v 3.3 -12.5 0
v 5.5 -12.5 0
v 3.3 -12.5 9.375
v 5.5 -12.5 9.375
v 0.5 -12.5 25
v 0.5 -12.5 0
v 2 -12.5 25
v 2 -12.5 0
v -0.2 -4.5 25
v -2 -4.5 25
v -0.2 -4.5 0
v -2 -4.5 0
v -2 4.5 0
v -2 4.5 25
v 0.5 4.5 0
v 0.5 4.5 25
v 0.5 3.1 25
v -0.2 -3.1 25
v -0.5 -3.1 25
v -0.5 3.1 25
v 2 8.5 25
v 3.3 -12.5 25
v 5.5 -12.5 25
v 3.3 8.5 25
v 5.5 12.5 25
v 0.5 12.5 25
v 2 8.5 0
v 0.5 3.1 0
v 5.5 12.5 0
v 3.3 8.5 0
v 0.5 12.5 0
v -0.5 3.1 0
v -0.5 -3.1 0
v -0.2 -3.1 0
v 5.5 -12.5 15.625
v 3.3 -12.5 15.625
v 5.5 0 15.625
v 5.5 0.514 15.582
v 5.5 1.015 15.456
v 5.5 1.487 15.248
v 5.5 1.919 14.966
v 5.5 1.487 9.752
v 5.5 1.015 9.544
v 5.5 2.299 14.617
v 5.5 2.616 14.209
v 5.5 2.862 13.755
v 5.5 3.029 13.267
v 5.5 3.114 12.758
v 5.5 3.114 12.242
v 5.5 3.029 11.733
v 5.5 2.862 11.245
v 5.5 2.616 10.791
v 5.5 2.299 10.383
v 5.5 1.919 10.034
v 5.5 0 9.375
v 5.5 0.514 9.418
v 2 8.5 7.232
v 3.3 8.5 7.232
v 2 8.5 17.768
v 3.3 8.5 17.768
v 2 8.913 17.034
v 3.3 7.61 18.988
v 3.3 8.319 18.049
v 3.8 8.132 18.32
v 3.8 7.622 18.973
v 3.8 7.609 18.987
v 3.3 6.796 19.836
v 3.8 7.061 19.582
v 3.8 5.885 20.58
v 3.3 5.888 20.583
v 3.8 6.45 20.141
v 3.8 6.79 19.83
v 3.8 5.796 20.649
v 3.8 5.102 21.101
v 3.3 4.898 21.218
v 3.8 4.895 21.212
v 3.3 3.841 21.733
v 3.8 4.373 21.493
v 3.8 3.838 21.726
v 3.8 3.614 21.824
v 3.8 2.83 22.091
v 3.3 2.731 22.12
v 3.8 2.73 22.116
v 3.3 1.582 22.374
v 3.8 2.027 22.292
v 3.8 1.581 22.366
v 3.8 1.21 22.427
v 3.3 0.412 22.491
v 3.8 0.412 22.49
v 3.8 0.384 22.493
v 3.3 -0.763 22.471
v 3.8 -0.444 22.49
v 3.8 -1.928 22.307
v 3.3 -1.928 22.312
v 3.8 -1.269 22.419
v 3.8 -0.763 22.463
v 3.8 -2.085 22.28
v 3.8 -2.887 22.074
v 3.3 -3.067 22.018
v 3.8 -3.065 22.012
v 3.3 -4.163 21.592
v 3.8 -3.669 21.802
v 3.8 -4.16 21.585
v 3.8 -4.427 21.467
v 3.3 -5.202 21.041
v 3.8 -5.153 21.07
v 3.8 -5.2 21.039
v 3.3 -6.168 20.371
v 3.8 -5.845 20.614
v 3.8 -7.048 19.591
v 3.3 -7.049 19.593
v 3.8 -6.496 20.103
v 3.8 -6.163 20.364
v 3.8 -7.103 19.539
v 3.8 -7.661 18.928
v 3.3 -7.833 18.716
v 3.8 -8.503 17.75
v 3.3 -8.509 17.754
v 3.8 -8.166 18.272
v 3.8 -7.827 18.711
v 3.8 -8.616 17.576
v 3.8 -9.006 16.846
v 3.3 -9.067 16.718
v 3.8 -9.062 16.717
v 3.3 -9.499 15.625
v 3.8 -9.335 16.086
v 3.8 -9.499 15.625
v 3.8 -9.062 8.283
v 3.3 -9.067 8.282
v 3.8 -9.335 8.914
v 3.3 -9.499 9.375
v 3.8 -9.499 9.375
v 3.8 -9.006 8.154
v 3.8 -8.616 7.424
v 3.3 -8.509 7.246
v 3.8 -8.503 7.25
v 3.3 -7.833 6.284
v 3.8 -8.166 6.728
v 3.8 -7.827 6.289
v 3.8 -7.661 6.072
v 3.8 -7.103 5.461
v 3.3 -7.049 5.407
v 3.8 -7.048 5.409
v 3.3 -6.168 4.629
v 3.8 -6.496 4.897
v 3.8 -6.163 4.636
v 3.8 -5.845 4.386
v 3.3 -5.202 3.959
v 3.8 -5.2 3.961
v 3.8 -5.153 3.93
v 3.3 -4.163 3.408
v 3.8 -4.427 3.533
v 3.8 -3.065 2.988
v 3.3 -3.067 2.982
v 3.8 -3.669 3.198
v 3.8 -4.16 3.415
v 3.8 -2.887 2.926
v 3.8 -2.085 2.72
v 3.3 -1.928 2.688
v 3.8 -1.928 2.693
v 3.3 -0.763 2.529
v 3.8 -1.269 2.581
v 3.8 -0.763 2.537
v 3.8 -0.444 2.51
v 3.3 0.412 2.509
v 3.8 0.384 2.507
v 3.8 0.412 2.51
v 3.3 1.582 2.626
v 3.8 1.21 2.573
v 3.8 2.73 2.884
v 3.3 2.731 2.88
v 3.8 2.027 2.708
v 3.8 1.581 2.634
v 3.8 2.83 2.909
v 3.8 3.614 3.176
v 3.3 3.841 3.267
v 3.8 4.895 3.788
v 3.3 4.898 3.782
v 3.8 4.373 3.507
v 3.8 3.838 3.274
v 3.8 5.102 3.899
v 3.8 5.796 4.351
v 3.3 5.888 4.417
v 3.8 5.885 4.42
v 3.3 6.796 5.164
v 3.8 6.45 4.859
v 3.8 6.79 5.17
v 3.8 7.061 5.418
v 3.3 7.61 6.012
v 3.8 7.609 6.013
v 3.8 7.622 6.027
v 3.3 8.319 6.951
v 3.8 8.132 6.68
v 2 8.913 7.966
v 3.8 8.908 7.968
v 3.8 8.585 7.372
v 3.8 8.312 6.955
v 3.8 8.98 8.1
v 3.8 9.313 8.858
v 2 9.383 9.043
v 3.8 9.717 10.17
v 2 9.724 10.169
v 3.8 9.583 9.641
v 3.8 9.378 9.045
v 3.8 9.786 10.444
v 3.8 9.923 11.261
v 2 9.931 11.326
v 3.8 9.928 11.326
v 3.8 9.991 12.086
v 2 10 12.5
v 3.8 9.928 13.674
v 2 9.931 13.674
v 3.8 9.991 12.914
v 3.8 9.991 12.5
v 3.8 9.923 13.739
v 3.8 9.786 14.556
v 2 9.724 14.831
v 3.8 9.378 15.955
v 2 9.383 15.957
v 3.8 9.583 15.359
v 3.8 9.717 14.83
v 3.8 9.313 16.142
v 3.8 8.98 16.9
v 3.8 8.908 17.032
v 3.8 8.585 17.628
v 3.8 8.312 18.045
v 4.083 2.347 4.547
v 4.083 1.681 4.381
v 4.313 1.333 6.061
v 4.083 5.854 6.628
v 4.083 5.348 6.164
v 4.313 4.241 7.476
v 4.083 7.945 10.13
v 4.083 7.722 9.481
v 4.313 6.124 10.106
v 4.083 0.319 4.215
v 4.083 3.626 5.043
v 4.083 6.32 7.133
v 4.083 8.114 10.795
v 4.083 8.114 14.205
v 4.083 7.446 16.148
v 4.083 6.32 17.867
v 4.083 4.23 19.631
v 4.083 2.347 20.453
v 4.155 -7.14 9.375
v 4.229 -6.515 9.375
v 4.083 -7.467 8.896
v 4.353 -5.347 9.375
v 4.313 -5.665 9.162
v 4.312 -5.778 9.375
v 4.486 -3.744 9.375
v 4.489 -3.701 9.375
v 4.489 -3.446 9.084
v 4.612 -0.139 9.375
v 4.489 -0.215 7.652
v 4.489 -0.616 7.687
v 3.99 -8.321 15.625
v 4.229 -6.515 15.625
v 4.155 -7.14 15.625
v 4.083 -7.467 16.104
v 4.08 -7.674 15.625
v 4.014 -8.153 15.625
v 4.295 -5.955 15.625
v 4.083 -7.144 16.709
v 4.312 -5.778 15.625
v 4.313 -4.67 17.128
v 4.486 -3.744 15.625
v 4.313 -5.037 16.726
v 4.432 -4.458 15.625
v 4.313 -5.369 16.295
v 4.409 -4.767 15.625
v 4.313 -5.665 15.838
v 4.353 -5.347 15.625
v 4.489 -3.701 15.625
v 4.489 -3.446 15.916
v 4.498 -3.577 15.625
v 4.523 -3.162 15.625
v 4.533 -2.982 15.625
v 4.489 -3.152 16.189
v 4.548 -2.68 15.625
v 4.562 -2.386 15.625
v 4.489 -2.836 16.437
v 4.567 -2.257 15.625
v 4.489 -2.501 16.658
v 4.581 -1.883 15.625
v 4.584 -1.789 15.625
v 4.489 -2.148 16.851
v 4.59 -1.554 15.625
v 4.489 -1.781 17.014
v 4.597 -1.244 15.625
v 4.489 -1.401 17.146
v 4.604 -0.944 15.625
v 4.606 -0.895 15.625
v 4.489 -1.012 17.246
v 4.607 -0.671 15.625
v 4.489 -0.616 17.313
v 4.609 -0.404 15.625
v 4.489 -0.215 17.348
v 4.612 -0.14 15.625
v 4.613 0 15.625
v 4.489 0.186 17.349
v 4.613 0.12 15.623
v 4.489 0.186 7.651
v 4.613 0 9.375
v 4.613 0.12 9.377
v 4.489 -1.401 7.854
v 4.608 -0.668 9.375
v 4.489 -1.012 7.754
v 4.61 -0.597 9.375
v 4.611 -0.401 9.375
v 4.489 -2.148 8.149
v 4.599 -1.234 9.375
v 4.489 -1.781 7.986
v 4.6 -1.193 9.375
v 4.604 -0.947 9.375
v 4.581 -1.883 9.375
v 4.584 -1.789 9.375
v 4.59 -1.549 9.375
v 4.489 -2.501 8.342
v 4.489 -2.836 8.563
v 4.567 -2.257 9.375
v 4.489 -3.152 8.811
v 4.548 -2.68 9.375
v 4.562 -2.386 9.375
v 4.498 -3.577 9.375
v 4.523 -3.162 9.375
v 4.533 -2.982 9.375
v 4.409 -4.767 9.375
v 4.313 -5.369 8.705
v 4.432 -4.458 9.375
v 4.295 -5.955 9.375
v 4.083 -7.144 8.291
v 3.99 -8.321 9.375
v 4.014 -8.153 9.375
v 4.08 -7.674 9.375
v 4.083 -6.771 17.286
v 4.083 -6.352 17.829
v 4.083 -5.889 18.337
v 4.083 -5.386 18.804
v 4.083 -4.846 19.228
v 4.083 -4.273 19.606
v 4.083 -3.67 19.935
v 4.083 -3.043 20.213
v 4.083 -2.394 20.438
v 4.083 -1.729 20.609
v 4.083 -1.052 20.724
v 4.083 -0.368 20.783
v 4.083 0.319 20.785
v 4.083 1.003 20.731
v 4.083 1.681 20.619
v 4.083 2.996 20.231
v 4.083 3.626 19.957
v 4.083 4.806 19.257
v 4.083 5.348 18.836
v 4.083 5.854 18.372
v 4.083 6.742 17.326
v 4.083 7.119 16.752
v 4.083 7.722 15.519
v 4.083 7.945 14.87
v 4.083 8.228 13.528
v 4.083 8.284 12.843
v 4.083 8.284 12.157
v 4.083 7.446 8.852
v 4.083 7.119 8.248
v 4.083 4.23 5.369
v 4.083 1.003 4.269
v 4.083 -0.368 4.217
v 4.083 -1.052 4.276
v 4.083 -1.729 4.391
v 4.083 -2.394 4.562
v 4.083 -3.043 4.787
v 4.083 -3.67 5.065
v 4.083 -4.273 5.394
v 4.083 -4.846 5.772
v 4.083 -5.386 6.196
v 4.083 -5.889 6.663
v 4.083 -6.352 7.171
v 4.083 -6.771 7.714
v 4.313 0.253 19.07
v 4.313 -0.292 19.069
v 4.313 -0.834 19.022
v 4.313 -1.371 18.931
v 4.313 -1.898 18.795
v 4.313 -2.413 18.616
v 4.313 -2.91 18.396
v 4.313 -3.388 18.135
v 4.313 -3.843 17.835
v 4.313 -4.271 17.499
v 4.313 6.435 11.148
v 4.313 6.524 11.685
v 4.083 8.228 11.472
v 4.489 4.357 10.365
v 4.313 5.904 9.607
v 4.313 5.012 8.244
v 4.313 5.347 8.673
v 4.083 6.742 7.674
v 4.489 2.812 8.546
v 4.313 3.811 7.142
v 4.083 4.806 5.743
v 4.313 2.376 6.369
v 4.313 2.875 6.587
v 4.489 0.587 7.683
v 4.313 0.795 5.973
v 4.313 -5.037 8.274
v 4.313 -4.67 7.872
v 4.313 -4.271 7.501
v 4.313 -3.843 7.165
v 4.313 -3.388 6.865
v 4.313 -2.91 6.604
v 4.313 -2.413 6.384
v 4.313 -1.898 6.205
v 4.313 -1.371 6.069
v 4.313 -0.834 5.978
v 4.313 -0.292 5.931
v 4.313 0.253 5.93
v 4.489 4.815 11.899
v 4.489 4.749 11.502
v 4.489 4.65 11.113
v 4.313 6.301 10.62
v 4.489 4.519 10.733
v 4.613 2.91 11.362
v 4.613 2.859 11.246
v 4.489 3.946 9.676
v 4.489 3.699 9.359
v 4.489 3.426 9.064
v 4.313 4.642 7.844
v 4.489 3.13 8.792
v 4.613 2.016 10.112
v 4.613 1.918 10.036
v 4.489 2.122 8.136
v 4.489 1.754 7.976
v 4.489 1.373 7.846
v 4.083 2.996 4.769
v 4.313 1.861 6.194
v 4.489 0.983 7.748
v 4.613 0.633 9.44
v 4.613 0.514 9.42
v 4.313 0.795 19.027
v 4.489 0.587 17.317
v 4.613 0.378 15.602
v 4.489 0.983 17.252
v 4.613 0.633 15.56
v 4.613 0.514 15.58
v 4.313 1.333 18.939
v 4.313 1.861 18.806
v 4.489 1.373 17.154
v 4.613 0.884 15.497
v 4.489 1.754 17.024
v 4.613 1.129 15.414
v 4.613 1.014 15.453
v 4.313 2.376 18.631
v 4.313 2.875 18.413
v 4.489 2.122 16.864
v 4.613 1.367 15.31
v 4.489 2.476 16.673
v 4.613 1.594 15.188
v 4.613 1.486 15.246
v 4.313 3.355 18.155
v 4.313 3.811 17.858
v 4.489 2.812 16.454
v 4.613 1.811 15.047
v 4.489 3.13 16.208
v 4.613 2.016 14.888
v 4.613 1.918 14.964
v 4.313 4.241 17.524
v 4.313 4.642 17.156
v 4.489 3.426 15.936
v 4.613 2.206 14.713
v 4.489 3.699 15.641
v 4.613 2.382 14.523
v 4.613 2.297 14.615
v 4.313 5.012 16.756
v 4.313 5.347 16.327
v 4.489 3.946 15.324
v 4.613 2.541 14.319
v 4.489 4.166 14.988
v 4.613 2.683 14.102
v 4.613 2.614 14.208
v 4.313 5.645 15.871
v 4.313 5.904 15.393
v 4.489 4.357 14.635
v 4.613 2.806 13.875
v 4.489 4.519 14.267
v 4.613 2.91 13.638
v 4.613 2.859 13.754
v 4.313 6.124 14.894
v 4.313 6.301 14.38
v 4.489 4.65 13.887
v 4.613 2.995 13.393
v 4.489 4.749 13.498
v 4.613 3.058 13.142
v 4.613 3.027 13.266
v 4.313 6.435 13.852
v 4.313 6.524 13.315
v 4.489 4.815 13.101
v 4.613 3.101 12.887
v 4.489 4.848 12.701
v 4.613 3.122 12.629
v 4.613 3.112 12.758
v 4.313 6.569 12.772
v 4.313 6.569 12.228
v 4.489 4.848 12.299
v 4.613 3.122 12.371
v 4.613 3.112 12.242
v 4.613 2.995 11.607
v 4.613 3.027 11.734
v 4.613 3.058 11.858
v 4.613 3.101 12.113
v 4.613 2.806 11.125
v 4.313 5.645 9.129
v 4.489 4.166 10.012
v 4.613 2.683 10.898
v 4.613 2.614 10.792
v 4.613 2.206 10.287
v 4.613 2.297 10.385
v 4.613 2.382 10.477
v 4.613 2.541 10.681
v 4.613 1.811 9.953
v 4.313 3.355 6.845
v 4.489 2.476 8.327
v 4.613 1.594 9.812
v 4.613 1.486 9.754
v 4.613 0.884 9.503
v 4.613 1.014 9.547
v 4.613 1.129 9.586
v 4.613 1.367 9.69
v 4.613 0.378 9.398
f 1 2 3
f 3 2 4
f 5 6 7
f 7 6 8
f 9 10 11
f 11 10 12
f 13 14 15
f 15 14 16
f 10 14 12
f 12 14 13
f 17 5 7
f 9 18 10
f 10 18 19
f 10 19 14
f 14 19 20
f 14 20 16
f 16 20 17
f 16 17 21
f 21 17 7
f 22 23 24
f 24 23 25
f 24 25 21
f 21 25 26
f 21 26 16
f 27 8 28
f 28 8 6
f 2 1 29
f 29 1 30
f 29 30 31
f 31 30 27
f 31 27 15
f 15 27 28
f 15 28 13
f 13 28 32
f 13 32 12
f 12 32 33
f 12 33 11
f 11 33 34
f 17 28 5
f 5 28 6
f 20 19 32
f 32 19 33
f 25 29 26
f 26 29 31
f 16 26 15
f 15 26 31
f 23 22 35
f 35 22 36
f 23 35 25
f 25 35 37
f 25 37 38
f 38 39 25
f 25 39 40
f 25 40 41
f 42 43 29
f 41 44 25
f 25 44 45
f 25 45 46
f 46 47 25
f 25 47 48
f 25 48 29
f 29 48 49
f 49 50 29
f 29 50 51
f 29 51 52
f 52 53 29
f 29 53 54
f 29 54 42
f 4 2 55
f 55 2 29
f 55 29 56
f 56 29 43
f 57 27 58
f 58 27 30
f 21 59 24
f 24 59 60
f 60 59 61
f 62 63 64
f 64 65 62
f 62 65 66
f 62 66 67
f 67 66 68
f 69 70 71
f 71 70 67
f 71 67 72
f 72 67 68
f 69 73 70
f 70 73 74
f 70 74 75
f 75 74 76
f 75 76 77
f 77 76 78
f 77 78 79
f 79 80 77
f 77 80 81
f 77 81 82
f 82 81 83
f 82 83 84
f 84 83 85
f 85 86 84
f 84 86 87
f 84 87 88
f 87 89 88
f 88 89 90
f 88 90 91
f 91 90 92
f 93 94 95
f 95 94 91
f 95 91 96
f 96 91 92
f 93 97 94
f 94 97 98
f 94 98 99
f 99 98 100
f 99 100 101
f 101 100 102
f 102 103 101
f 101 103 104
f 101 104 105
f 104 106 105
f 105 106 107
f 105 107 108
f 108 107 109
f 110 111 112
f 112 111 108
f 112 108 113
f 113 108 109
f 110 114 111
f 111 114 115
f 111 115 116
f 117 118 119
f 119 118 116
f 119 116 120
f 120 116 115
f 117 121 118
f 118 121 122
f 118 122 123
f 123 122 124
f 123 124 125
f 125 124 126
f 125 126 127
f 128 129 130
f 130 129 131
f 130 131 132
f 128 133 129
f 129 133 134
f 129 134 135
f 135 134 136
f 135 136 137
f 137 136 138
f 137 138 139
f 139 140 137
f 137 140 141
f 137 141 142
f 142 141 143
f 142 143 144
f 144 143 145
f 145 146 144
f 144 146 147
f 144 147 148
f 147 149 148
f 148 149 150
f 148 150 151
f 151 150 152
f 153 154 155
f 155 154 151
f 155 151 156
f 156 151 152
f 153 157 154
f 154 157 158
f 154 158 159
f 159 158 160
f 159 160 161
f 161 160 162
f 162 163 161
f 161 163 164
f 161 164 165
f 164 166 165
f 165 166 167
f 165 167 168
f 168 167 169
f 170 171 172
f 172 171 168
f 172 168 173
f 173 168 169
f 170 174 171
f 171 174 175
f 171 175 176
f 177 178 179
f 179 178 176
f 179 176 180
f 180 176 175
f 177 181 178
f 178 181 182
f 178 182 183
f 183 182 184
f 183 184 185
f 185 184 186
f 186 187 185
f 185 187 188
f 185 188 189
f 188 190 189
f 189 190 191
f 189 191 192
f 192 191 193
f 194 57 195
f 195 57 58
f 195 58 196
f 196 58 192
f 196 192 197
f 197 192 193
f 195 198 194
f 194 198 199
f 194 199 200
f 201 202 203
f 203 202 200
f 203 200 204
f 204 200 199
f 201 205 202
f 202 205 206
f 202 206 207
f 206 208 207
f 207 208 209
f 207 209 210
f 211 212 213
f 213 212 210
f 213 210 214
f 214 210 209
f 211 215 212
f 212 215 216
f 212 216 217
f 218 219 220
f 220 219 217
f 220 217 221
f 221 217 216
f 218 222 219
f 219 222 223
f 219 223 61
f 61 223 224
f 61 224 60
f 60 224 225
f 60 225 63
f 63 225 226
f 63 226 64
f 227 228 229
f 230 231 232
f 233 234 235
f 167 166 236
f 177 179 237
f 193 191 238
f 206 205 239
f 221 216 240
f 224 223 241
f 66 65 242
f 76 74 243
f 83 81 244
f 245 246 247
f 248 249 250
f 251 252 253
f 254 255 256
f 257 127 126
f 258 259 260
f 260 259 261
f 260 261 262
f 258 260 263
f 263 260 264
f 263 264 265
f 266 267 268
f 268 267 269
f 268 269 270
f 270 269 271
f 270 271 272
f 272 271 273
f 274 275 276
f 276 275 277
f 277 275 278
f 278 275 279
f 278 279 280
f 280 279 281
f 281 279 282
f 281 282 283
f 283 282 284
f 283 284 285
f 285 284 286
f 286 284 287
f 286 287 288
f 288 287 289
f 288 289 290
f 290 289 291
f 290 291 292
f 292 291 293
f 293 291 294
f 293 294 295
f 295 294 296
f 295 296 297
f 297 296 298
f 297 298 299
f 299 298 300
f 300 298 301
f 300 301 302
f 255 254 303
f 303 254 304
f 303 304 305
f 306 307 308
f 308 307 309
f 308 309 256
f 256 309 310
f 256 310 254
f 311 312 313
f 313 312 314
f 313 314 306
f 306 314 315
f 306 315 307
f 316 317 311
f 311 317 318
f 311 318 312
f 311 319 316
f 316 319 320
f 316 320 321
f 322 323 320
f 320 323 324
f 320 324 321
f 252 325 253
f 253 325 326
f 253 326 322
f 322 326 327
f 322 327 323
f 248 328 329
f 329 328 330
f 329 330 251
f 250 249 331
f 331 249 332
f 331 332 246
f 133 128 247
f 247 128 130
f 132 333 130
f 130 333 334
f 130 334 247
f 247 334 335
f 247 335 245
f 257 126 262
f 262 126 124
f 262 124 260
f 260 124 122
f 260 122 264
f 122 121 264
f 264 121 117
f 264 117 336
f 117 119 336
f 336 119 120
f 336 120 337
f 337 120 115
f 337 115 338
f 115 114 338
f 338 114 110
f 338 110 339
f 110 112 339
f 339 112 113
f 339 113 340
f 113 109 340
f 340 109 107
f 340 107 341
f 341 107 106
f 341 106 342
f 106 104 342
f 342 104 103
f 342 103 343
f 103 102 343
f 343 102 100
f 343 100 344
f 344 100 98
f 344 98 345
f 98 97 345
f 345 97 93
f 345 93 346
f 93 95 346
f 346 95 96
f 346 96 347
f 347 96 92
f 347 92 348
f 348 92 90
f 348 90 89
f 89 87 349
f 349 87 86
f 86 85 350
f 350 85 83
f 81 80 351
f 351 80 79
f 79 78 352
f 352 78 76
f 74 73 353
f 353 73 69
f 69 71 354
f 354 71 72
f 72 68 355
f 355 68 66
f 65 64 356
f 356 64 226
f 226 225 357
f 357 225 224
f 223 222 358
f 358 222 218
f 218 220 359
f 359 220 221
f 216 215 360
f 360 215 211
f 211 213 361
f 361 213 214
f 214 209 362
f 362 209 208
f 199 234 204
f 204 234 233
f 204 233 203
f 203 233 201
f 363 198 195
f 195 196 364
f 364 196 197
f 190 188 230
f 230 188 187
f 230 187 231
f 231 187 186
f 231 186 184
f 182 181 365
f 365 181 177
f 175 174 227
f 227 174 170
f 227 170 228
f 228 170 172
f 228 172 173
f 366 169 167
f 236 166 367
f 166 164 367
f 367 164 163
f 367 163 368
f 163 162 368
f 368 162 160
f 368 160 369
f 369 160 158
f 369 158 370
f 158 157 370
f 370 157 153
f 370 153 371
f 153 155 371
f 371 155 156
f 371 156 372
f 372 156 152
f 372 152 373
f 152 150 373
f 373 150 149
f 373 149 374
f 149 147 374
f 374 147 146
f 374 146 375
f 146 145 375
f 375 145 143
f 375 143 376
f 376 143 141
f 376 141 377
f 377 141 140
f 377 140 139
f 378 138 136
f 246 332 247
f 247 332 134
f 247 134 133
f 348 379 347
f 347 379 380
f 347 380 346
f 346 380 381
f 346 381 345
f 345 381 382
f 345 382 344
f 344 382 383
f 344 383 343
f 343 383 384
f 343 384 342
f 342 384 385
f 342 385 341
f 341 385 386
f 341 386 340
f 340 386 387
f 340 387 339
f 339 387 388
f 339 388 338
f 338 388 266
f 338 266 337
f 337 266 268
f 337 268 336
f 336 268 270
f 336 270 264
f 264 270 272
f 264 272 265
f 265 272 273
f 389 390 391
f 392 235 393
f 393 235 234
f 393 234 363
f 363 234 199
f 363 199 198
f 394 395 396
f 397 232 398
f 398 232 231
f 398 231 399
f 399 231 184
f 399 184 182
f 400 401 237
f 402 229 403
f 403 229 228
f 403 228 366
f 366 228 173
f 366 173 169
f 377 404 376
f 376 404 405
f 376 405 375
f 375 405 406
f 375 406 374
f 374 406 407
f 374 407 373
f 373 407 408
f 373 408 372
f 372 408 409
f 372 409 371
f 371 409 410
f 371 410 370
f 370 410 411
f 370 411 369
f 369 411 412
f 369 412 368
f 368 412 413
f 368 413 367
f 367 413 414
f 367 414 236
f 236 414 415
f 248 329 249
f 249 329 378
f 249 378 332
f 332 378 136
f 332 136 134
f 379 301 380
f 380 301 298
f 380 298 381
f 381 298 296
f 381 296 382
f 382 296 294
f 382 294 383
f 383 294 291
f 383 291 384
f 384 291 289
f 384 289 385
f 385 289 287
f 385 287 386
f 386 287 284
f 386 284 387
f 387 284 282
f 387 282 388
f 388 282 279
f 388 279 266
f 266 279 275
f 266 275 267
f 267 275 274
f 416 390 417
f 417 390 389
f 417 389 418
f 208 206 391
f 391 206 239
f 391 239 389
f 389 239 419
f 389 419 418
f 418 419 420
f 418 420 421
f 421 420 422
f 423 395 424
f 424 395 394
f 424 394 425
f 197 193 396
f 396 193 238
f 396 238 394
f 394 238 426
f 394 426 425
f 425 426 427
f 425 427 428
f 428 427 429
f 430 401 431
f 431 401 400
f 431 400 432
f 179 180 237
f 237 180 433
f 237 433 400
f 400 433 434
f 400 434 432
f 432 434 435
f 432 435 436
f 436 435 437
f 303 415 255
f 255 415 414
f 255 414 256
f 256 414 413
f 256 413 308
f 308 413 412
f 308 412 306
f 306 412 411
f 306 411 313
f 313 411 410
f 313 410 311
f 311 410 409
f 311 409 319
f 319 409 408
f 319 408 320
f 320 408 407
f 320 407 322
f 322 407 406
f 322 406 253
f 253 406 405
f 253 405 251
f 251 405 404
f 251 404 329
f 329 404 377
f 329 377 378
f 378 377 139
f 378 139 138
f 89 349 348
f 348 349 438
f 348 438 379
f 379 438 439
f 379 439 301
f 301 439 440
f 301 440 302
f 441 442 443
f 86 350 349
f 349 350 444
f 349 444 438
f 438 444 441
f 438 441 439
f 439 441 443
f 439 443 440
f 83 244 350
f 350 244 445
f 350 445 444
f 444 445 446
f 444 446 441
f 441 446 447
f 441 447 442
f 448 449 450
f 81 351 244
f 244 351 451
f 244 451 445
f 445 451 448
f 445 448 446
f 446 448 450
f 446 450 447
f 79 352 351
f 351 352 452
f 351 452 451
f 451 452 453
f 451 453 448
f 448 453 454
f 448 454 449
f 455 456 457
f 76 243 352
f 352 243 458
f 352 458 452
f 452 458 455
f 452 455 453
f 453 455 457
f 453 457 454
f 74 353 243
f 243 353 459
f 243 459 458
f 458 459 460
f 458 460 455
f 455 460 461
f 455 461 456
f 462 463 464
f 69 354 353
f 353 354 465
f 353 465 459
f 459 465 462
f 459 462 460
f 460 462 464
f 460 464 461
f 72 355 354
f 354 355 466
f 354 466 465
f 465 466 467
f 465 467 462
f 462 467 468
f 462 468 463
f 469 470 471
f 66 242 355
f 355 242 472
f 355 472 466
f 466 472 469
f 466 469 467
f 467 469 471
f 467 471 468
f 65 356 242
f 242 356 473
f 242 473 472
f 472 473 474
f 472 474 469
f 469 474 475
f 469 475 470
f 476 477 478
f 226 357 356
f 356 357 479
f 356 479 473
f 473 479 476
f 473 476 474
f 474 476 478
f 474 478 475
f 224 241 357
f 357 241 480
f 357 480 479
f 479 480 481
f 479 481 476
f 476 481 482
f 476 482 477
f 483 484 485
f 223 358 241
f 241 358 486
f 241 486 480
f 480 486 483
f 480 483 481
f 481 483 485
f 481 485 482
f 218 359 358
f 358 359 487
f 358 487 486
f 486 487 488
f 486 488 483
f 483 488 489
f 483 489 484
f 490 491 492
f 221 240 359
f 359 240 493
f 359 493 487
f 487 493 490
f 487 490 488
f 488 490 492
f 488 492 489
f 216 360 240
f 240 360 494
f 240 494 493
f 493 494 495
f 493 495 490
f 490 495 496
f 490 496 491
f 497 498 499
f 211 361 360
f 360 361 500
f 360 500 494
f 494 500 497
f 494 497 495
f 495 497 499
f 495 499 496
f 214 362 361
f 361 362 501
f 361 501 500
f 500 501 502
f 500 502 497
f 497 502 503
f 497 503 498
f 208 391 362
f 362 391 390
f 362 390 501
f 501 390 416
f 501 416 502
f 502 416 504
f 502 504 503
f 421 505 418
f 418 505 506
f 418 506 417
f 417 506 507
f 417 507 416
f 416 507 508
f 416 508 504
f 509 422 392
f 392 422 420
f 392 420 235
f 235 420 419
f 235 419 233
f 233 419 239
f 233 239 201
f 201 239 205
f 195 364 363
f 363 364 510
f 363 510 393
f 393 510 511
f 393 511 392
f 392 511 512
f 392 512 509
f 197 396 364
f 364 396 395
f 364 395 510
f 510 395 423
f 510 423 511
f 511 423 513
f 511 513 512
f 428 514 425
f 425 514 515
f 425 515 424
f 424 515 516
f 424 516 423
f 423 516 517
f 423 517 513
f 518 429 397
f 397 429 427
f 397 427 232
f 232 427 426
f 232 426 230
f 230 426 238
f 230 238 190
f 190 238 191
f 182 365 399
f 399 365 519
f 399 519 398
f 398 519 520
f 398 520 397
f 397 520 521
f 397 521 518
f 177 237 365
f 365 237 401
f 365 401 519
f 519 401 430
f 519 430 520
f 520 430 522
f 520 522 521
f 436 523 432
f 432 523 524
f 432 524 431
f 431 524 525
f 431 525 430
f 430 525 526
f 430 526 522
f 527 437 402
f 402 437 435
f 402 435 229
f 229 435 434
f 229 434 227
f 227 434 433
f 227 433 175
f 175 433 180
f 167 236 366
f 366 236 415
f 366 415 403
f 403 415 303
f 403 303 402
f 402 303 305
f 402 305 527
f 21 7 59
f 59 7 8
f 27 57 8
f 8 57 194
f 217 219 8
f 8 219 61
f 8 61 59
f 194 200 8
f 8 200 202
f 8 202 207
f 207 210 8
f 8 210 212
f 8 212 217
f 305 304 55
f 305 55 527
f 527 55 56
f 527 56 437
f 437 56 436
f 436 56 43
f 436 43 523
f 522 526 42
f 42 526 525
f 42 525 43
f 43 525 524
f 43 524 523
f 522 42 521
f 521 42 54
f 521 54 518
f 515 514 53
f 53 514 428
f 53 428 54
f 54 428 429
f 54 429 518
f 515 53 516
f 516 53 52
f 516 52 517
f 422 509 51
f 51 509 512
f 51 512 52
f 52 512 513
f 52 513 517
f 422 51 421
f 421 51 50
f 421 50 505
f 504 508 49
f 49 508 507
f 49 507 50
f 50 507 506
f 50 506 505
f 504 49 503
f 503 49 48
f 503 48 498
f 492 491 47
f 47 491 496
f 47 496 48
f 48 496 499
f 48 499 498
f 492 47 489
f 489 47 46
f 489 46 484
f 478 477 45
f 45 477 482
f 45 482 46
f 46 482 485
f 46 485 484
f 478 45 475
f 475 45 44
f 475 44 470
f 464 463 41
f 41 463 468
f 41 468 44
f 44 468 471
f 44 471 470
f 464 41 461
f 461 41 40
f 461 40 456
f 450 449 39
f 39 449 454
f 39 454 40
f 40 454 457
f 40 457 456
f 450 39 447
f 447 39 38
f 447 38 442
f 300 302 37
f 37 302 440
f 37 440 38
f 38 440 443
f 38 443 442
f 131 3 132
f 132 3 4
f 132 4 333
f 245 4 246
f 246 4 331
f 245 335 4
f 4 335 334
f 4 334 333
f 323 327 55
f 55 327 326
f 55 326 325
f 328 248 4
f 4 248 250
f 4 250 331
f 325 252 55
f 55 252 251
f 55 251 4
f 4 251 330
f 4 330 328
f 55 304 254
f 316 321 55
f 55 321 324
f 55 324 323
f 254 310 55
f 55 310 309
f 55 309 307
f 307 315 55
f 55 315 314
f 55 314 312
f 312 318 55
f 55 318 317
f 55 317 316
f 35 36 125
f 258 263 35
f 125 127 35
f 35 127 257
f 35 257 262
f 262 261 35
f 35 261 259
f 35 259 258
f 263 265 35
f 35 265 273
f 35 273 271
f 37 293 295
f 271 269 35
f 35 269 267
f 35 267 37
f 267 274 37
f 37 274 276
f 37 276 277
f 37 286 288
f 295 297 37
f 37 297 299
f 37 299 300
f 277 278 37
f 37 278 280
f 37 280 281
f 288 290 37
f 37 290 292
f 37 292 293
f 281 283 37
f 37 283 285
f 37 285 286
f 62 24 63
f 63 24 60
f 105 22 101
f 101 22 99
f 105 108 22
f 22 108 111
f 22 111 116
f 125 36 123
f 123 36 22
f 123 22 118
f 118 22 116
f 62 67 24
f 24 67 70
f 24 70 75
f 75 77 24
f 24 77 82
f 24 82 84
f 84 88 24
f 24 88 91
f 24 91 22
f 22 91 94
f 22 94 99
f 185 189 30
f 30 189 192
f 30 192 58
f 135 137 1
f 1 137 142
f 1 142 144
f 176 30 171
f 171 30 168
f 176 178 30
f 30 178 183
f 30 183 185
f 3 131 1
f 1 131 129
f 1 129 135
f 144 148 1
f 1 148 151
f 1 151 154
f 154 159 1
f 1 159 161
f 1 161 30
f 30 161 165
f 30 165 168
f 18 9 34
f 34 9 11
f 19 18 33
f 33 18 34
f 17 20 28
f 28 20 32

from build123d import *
from build123d.topology import SkipClean

# Parameters (mm, degrees)
SKETCH1_W           = 4
SKETCH1_H           = 9
BOSS_EXTRUDE1_DEPTH = 25
SKETCH2_W           = 1
SKETCH2_H           = 6
CUT_EXTRUDE1_DEPTH  = 26.480384612
SKETCH4_W           = 25
SKETCH4_H           = 25
BOSS_EXTRUDE2_DEPTH = 1.5
SKETCH5_W           = 25
SKETCH5_H           = 25
BOSS_EXTRUDE3_DEPTH = 3.5
SKETCH7_W           = 1.8
SKETCH7_H           = 25
CUT_EXTRUDE5_DEPTH  = 21
CUT_EXTRUDE6_START  = -1.7
CUT_EXTRUDE6_DEPTH  = 1.7
BOSS_EXTRUDE4_START = 0.5
BOSS_EXTRUDE4_DEPTH = 0.5
SKETCH11_W          = 0.7
SKETCH11_H          = 1.5
CUT_EXTRUDE7_DEPTH  = 29.486839086
SKETCH12_W          = 1
SKETCH12_H          = 6.2
CUT_EXTRUDE8_DEPTH  = 29.486839086


with BuildPart() as part:
    # Sketch1 → Boss-Extrude1 (new body)
    with BuildSketch(Plane.XY):
        Rectangle(SKETCH1_W, SKETCH1_H)
    extrude(amount=BOSS_EXTRUDE1_DEPTH)

    # Sketch2 → Cut-Extrude1 (cut, through all)
    with BuildSketch(Plane(origin=(0, 0, 0), x_dir=(-1, 0, 0), z_dir=(0, 0, -1))):
        Rectangle(SKETCH2_W, SKETCH2_H)
    extrude(amount=-CUT_EXTRUDE1_DEPTH, mode=Mode.SUBTRACT)

    # Sketch4 → Boss-Extrude2 (add)
    with BuildSketch(Plane(origin=(2, 0, 0), x_dir=(0, 0, -1), z_dir=(1, 0, 0))):
        with Locations((-12.5, 0)):
            Rectangle(SKETCH4_W, SKETCH4_H)
    extrude(amount=-BOSS_EXTRUDE2_DEPTH)

    # Sketch5 → Boss-Extrude3 (add)
    with BuildSketch(Plane(origin=(2, 0, 0), x_dir=(0, 0, -1), z_dir=(1, 0, 0))):
        with Locations((-12.5, 0)):
            Rectangle(SKETCH5_W, SKETCH5_H)
    extrude(amount=BOSS_EXTRUDE3_DEPTH)

    # Sketch6 → Cut-Revolve2 (revolve, cut)
    with BuildSketch(Plane(origin=(0, 0, 12.5), x_dir=(-1, 0, 0), z_dir=(0, 0, -1)), mode=Mode.PRIVATE) as cut_revolve2_sk:
        with BuildLine():
            Line((-2, 10), (-2, 0))
            Line((-2, 0), (-4.699928584, 0))
            ThreePointArc((-4.699928584, 0), (-4.474492757, 5.020205958), (-3.8, 10))
            Line((-3.8, 10), (-2, 10))
        make_face()
    revolve(cut_revolve2_sk.sketch.rotate(Axis((2.075, 0, 12.5), (-1, 0, 0)), 90), axis=Axis((2.075, 0, 12.5), (-1, 0, 0)), mode=Mode.SUBTRACT)

    # Sketch7 → Cut-Extrude5 (cut)
    with BuildSketch(Plane.XZ.offset(12.5)):
        with Locations((2.9, 12.5)):
            Rectangle(SKETCH7_W, SKETCH7_H)
    extrude(amount=-CUT_EXTRUDE5_DEPTH, mode=Mode.SUBTRACT)

    # Sketch8 → Cut-Extrude6 (cut)
    with BuildSketch(Plane(origin=(5.5, 0, 0), x_dir=(0, 0, -1), z_dir=(1, 0, 0)).offset(CUT_EXTRUDE6_START)):
        with BuildLine():
            Line((-9.375, 0), (-9.375, -12.5))
            ThreePointArc((-9.375, -12.5), (-12.5, -15.625), (-15.625, -12.5))
            Line((-15.625, -12.5), (-15.625, 0))
            ThreePointArc((-15.625, 0), (-12.5, 3.125), (-9.375, 0))
        make_face()
    extrude(amount=CUT_EXTRUDE6_DEPTH, mode=Mode.SUBTRACT)

    # Sketch9 → Boss-Extrude4 (add)
    with SkipClean():  # the faces are left unmerged after this step: merging them gives an invalid solid
        with BuildSketch(Plane.ZY.offset(-3.8).offset(BOSS_EXTRUDE4_START)):
            with BuildLine():
                Line((15.625, -9.499177596), (15.625, -12.5))
                Line((15.625, -12.5), (25, -12.5))
                Line((25, -12.5), (25, 8.5))
                Line((25, 8.5), (17.767826876, 8.5))
                ThreePointArc((17.767826876, 8.5), (22.429878362, -1.182165692), (15.625, -9.499177596))
            make_face()
            with BuildLine():
                Line((0, -12.5), (9.375, -12.5))
                Line((9.375, -12.5), (9.375, -9.499177596))
                ThreePointArc((9.375, -9.499177596), (2.570121638, -1.182165692), (7.232173124, 8.5))
                Line((7.232173124, 8.5), (0, 8.5))
                Line((0, 8.5), (0, -12.5))
            make_face()
        extrude(amount=-BOSS_EXTRUDE4_DEPTH)

    # Sketch11 → Cut-Extrude7 (cut, through all)
    with SkipClean():  # the faces are left unmerged after this step: merging them gives an invalid solid
        with BuildSketch(Plane(origin=(0, 0, 0), x_dir=(-1, 0, 0), z_dir=(0, 0, -1))):
            with Locations((-0.15, -3.75)):
                Rectangle(SKETCH11_W, SKETCH11_H)
        extrude(amount=-CUT_EXTRUDE7_DEPTH, mode=Mode.SUBTRACT)

    # Sketch12 → Cut-Extrude8 (cut, through all)
    with SkipClean():  # the faces are left unmerged after this step: merging them gives an invalid solid
        with BuildSketch(Plane(origin=(0, 0, 0), x_dir=(-1, 0, 0), z_dir=(0, 0, -1))):
            Rectangle(SKETCH12_W, SKETCH12_H)
        extrude(amount=-CUT_EXTRUDE8_DEPTH, mode=Mode.SUBTRACT)


solid = part.part
